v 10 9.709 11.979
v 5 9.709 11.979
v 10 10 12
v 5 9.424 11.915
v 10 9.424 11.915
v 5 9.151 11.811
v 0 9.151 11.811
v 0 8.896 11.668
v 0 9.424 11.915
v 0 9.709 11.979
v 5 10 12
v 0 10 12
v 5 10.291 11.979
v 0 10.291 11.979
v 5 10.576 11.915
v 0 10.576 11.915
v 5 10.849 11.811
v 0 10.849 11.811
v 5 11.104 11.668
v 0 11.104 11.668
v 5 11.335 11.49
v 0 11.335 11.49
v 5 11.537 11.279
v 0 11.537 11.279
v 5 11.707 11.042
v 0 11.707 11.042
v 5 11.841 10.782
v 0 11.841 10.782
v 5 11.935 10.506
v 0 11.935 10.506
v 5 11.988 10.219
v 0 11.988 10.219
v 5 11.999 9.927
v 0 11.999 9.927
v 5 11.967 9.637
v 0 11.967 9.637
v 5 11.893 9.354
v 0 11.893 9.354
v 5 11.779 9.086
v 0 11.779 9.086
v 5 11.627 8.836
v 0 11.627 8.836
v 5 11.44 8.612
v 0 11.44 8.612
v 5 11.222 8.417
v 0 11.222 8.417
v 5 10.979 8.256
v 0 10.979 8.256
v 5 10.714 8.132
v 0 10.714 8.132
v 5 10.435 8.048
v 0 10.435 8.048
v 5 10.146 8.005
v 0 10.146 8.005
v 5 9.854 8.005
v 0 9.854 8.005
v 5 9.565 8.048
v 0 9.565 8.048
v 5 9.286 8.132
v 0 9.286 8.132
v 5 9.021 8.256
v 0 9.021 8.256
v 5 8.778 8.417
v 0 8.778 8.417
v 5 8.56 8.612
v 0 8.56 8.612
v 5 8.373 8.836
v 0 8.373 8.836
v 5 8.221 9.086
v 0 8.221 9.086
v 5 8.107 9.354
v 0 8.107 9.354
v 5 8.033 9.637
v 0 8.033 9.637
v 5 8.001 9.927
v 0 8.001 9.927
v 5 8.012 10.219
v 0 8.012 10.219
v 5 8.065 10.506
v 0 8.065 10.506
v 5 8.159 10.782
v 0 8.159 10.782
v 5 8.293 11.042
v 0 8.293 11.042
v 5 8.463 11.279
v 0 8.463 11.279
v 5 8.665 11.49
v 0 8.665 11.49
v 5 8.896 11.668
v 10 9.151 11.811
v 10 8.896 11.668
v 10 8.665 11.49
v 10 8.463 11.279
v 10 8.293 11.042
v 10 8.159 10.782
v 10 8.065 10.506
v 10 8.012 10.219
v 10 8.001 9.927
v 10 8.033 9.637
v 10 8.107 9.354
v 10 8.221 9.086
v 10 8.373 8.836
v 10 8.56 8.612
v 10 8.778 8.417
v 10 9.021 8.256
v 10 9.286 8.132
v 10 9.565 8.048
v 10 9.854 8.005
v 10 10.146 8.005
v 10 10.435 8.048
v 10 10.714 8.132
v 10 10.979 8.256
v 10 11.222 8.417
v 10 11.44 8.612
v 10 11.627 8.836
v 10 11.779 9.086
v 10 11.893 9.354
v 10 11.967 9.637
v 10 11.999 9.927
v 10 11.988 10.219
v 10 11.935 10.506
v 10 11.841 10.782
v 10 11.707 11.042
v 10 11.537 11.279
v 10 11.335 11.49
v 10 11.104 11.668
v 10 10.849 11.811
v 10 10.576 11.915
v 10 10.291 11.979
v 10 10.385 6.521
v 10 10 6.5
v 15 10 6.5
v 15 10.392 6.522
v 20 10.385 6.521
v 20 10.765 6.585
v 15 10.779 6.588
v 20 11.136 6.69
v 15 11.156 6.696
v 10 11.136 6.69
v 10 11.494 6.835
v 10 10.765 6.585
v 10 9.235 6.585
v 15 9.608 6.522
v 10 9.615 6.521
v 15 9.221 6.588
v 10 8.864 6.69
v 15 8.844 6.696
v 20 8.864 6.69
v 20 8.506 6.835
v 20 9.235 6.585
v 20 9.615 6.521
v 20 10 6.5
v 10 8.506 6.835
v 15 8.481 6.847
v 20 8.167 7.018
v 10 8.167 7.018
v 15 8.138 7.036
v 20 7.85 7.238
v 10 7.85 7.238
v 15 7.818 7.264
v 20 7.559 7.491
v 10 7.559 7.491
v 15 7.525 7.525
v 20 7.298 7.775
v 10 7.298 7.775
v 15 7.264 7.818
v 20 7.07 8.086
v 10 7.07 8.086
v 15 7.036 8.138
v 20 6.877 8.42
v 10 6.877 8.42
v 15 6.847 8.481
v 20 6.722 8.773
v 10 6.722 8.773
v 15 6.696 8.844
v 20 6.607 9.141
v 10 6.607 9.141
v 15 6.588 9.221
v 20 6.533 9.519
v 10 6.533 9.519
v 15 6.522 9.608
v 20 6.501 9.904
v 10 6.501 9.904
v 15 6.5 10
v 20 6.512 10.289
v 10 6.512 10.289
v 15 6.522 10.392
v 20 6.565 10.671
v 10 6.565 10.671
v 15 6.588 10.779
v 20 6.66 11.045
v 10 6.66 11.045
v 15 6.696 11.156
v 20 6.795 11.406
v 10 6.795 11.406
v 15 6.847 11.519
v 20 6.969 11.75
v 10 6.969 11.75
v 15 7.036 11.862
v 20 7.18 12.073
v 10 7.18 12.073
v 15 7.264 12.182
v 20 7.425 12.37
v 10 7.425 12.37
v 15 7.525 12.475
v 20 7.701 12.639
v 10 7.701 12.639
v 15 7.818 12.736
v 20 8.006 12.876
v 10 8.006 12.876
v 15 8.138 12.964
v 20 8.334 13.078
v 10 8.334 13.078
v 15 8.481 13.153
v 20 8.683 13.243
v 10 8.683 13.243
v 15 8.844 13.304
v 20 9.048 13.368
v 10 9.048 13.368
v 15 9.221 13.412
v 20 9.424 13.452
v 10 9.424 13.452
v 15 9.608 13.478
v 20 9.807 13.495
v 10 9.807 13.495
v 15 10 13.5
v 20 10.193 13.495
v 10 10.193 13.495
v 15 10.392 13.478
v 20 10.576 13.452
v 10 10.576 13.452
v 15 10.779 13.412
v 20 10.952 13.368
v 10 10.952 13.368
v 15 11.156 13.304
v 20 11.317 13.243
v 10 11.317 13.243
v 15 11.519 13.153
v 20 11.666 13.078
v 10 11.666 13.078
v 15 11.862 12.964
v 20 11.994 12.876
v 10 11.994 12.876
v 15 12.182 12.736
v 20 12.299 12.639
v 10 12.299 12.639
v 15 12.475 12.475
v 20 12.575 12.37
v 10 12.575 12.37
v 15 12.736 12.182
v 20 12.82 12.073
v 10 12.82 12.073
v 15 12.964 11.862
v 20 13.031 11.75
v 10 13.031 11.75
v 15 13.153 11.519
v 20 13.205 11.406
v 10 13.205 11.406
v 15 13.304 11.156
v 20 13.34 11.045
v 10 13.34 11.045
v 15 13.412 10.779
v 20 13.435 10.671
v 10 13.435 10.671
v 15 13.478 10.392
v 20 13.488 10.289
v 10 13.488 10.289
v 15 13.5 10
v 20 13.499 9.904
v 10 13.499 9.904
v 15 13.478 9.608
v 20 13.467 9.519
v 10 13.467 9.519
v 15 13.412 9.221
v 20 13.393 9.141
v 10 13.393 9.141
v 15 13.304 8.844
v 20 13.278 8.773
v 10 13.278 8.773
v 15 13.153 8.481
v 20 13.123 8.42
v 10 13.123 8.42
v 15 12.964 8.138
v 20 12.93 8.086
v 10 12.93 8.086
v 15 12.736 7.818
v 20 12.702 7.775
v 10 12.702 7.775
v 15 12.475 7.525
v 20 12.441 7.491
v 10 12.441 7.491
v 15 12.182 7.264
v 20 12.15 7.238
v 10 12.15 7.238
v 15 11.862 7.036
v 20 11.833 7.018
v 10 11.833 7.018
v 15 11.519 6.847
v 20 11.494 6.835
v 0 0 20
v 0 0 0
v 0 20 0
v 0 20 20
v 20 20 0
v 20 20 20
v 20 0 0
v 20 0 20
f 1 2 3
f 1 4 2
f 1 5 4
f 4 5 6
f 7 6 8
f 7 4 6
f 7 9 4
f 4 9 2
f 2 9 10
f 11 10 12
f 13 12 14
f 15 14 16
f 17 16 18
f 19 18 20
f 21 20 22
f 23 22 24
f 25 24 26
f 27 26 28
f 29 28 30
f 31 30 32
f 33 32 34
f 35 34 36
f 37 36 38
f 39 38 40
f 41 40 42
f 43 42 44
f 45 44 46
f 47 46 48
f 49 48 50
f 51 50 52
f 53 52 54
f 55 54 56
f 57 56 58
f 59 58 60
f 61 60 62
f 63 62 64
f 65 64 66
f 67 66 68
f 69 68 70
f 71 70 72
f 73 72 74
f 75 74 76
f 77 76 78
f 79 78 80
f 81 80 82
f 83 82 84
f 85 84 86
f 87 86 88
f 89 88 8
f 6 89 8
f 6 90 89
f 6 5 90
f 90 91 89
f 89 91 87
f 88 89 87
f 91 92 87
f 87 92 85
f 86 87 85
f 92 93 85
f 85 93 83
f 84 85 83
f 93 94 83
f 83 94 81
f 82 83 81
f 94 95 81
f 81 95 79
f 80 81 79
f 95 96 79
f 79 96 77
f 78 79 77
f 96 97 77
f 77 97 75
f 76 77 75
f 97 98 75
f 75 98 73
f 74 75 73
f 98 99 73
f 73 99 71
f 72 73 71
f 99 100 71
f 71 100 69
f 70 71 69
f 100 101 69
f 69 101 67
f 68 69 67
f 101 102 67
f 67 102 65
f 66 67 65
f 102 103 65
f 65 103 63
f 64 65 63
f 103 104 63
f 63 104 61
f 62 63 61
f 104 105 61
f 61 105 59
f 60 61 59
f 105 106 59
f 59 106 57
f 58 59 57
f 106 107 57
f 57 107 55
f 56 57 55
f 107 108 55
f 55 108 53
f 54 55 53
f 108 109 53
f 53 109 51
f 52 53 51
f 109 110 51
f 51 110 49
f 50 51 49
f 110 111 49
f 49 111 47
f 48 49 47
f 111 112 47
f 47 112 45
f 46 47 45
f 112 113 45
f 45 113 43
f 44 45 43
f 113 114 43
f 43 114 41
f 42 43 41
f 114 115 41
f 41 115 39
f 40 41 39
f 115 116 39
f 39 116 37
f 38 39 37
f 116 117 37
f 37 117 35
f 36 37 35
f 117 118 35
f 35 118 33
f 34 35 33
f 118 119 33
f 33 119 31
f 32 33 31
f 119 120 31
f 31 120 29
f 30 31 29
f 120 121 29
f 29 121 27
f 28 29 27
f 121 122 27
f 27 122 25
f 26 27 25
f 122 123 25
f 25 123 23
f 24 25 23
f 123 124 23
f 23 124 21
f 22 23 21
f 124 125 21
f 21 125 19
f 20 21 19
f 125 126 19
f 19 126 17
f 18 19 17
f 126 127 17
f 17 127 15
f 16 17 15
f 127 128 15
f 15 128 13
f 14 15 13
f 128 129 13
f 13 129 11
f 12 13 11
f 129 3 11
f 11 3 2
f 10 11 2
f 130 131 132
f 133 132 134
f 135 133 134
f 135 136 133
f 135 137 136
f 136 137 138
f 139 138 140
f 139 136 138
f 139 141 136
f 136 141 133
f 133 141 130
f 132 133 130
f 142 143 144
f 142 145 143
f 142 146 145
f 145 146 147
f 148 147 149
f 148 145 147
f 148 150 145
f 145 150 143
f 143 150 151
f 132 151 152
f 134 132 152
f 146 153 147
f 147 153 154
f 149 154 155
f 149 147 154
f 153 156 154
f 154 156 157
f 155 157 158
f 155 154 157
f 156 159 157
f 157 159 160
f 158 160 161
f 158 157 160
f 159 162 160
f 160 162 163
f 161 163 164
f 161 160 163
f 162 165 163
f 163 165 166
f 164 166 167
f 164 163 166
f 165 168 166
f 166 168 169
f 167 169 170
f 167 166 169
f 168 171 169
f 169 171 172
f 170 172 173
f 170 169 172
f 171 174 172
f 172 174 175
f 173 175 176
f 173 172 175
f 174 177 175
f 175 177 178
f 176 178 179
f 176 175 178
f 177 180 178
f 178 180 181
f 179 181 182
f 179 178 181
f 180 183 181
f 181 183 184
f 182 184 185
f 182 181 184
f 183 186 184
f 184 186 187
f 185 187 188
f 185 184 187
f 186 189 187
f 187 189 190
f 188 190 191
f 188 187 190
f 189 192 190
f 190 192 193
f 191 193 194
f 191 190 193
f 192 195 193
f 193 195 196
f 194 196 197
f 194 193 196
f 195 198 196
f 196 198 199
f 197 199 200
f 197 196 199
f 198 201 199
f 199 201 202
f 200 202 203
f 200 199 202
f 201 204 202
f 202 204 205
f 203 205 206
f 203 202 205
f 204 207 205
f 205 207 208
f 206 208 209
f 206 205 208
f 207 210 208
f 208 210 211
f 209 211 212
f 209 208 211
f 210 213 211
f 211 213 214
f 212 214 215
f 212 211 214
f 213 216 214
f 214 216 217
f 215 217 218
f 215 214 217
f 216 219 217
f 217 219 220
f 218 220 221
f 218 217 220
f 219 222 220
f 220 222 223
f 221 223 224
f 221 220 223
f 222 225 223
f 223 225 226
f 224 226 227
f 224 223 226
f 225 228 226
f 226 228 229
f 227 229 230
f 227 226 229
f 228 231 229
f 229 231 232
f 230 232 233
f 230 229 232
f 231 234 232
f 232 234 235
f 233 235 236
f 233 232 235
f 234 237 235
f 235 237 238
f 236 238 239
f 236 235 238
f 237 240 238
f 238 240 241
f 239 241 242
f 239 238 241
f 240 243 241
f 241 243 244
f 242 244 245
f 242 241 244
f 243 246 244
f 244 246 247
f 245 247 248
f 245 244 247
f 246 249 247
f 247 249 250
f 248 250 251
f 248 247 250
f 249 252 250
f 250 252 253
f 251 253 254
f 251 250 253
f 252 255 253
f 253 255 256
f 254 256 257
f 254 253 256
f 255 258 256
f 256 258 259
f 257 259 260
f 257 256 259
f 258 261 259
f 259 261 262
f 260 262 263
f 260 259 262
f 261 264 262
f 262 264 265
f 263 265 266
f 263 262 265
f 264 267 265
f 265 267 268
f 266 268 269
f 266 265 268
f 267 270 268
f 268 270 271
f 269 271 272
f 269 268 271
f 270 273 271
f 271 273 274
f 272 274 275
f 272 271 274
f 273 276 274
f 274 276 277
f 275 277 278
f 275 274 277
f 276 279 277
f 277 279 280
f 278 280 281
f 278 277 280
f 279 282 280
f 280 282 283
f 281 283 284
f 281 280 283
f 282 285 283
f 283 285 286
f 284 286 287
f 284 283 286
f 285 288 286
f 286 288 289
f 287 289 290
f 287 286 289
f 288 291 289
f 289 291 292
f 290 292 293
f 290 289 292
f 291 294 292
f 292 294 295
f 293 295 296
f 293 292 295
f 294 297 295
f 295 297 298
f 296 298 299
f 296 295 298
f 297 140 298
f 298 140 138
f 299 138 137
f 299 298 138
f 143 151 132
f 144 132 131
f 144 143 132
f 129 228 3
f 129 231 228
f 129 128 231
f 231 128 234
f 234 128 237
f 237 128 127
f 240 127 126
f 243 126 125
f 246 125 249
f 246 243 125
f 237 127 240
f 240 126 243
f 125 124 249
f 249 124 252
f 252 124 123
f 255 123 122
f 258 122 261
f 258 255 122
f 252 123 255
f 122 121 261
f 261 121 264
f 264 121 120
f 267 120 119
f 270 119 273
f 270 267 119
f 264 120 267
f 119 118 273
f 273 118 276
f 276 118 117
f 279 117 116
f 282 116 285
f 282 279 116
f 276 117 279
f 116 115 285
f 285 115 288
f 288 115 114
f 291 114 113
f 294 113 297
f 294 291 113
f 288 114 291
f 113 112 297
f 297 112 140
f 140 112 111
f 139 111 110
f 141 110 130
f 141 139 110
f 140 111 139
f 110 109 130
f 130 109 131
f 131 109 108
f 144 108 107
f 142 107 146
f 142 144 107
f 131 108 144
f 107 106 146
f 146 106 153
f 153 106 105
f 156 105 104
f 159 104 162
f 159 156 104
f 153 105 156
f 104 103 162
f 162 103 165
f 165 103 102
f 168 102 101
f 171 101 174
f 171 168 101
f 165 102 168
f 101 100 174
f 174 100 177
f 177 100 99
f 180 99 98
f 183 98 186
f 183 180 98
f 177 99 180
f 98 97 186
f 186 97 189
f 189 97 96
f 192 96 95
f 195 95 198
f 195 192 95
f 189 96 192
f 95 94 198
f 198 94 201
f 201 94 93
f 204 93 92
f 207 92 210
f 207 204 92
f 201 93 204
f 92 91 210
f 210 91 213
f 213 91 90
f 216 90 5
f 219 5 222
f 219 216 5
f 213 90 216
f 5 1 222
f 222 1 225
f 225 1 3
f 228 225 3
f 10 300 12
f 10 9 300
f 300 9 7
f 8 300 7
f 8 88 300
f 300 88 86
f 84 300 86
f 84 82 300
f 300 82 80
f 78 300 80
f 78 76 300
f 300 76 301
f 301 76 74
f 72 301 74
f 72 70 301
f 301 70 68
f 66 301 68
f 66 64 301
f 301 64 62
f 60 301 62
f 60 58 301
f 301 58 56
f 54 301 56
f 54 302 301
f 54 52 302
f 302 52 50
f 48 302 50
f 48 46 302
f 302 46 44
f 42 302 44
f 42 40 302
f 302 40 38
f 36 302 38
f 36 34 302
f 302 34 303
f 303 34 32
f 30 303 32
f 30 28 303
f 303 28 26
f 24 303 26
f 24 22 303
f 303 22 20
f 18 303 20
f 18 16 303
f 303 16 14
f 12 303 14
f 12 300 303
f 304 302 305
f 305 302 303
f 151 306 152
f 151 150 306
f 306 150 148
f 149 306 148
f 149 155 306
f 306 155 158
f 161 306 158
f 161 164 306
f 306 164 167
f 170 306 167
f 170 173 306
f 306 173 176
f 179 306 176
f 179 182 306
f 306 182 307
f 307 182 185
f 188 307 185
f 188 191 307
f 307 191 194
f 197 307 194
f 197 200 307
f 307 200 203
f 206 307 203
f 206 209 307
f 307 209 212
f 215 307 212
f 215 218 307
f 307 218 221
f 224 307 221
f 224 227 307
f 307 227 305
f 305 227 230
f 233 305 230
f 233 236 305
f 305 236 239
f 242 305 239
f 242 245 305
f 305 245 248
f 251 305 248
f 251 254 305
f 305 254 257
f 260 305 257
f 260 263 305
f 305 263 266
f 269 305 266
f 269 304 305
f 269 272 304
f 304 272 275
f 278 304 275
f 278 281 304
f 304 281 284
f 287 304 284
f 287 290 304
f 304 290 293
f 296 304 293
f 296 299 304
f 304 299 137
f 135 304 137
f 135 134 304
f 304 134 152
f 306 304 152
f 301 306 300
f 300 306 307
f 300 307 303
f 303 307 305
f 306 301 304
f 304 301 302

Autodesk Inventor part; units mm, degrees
ref_plane "YZ Plane" through (0, 0, 0) normal (1, 0, 0) x (0, 1, 0)
ref_plane "XZ Plane" through (0, 0, 0) normal (0, 1, 0) x (-1, 0, 0)
ref_plane "XY Plane" through (0, 0, 0) normal (0, 0, 1) x (1, 0, 0)
sketch "Sketch1" plane through (0, 0, 0) normal (0, 0, 1) x (1, 0, 0)
  line L0 (0, 0) -> (20, 0)
  line L1 (20, 0) -> (20, 20)
  line L2 (20, 20) -> (0, 20)
  line L3 (0, 20) -> (0, 0)
  line L4 (0, 20) -> (10, 20)
  dimension "d0" = 20
  dimension "d1" = 20
extrude "Extrusion1" add sketch "Sketch1" along normal blind 20
sketch "Sketch2" plane through (20, 0, 0) normal (1, 0, 0) x (0, 0, -1)
  circle A0 centre (-10, 10) radius 3.5
  line L0 (0, 20) -> (-20, 20) projected
  line L1 (-20, 0) -> (-20, 20) projected
  point P0 (0, 0)
  dimension "d4" = 7
  dimension "d5" = 10
  dimension "d6" = 10
extrude "Extrusion2" cut sketch "Sketch2" against normal blind 10
sketch "Sketch3" plane through (0, 0, 0) normal (-1, 0, 0) x (0, 0, 1)
  circle A0 centre (10, 10) radius 2
  line L0 (0, 0) -> (20, 0) projected
  line L1 (20, 20) -> (20, 0) projected
  dimension "d9" = 4
  dimension "d10" = 10
  dimension "d11" = 10
extrude "Extrusion3" cut sketch "Sketch3" against normal blind 10
properties part number "holetest"
